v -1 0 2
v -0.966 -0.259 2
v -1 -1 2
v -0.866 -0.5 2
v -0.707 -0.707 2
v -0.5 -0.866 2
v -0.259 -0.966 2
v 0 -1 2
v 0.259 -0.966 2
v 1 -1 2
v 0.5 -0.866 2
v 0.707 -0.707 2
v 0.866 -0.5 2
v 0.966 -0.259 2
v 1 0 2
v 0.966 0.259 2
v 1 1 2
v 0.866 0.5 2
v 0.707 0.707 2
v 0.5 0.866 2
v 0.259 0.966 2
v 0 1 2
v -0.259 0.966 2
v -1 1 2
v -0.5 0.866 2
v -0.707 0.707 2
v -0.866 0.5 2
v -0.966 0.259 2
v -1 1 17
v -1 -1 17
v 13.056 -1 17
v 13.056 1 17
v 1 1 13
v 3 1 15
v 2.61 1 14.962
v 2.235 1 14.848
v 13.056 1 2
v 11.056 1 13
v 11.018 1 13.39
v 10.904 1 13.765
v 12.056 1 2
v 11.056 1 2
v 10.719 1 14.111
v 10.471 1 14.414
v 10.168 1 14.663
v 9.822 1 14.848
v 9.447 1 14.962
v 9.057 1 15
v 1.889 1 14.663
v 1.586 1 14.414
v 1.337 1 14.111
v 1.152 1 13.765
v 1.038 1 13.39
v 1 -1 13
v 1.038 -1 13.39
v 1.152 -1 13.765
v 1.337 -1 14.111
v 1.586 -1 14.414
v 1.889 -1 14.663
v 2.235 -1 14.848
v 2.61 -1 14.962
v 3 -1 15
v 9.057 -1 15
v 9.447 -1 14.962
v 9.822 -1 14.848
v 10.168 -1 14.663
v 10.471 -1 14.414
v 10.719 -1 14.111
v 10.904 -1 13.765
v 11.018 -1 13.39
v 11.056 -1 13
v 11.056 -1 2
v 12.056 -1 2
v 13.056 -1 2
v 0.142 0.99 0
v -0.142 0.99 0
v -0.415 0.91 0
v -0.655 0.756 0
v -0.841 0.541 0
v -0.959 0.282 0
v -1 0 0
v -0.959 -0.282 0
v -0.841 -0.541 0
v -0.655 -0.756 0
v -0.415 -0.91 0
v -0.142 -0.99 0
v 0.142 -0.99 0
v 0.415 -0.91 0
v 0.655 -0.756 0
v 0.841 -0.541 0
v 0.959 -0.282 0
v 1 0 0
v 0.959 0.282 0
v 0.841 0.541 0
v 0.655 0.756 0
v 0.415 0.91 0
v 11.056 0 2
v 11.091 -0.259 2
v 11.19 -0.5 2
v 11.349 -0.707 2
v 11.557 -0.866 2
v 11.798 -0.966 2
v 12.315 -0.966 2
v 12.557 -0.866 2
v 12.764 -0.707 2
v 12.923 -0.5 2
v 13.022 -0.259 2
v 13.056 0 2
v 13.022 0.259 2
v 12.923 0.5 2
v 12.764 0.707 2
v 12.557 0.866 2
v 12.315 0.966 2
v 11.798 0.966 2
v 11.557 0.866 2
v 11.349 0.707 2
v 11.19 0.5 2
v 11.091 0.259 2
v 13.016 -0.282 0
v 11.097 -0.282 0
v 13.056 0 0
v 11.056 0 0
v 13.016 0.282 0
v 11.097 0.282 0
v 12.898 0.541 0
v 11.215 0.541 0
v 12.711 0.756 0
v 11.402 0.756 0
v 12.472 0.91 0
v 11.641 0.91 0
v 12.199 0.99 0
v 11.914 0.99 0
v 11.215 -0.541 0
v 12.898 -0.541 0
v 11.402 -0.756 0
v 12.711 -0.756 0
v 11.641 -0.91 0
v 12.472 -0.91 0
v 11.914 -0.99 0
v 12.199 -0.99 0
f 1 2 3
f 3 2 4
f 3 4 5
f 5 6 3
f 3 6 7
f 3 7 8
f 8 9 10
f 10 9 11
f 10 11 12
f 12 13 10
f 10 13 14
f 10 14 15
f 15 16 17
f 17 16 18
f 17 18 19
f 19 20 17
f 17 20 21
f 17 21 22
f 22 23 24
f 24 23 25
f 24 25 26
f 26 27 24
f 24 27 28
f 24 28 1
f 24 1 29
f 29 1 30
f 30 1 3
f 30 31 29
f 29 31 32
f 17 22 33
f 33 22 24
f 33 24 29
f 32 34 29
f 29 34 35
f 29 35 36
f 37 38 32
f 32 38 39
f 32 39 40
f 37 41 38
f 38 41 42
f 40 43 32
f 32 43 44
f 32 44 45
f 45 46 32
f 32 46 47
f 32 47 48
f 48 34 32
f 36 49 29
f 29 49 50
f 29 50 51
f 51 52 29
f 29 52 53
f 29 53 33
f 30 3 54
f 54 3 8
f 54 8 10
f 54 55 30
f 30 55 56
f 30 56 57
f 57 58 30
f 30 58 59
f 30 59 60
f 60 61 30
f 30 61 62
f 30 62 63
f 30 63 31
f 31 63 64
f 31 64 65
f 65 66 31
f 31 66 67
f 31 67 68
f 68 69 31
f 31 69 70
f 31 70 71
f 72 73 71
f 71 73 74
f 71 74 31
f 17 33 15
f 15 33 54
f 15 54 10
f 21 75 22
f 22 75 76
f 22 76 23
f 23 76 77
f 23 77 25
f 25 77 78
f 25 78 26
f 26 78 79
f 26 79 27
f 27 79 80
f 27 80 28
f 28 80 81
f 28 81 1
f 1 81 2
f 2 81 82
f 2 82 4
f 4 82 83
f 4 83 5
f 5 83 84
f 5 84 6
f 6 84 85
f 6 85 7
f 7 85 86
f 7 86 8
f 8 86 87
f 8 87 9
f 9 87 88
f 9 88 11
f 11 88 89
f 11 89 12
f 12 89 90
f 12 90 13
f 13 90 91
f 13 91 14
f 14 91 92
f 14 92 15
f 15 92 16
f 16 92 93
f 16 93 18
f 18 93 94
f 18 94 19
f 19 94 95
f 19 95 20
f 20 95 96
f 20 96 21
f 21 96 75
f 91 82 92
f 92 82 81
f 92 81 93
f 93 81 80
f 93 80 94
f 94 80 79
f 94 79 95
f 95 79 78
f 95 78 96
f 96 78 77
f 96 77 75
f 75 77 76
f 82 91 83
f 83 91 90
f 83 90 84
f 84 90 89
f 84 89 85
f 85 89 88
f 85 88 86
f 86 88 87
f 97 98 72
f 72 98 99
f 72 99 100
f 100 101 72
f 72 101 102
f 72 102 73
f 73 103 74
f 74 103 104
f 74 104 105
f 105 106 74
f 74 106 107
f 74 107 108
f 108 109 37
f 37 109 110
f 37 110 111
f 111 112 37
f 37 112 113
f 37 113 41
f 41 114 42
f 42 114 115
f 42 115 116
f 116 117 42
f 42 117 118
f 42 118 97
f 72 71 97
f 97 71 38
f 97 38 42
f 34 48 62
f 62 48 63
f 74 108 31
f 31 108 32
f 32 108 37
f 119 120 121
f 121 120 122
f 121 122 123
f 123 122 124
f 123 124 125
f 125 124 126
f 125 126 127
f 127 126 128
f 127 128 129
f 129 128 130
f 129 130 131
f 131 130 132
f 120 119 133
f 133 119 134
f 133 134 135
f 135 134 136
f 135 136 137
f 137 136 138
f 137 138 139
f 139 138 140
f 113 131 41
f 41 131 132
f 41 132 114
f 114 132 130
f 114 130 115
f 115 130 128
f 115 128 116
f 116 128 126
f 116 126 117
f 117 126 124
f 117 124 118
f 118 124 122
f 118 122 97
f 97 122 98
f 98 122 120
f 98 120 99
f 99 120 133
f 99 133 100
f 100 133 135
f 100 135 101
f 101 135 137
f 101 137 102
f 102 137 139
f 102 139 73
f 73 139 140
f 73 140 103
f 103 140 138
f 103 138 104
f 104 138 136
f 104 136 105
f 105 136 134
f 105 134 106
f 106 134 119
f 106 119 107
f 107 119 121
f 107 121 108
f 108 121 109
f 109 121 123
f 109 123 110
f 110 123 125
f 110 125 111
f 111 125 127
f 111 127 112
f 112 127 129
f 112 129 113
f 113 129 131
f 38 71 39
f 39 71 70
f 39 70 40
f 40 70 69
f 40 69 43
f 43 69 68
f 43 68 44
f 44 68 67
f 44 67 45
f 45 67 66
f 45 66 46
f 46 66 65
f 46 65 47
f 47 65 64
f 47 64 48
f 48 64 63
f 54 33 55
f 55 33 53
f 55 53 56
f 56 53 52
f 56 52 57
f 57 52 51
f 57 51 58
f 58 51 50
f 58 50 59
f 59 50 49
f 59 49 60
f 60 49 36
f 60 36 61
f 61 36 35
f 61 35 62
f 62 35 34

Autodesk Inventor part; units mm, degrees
ref_plane "YZ Plane" through (0, 0, 0) normal (1, 0, 0) x (0, 1, 0)
ref_plane "XZ Plane" through (0, 0, 0) normal (0, 1, 0) x (-1, 0, 0)
ref_plane "XY Plane" through (0, 0, 0) normal (0, 0, 1) x (1, 0, 0)
sketch "Esboço1" plane through (0, 0, 0) normal (0, 0, 1) x (1, 0, 0)
  circle A0 centre (0, 0) radius 1
  line L0 (0, 0) -> (12.0565, 0) construction
  circle A1 centre (12.0565, 0) radius 1
  dimension "d0" = 2
  dimension "d1" = 12.0565
  dimension "d2" = 2
extrude "Extrusão1" add sketch "Esboço1" along normal blind 2
sketch "Esboço2" plane through (0, 0, 2) normal (0, 0, 1) x (1, 0, 0)
  line L0 (-1, 1) -> (1, 1)
  line L1 (1, 1) -> (1, -1)
  line L2 (1, -1) -> (-1, -1)
  line L3 (-1, -1) -> (-1, 1)
  circle A0 centre (0, 0) radius 1 projected
  line L4 (-1, 1) -> (1, -1) construction
  line L5 (1, 1) -> (-1, -1) construction
  circle A1 centre (12.0565, 0) radius 1 projected
  line L6 (0, 0) -> (12.0565, 0) construction
  line L7 (11.0565, 1) -> (13.0565, 1)
  line L8 (13.0565, 1) -> (13.0565, -1)
  line L9 (13.0565, -1) -> (11.0565, -1)
  line L10 (11.0565, -1) -> (11.0565, 1)
  line L11 (11.0565, 1) -> (13.0565, -1) construction
  line L12 (13.0565, 1) -> (11.0565, -1) construction
extrude "Extrusão2" add sketch "Esboço2" along normal blind 15
sketch "Esboço3" plane through (0, 0, 17) normal (0, 0, 1) x (1, 0, 0)
  line L0 (1, 0) -> (1, 1) projected
  line L1 (12.0565, 1) -> (11.0565, 1) projected
  line L2 (1, 1) -> (11.0565, 1)
  line L3 (11.0565, 1) -> (11.0565, -1)
  line L4 (11.0565, -1) -> (1, -1)
  line L5 (1, -1) -> (1, 1)
  point P0 (0, 0)
  dimension "d7" = 2
extrude "Extrusão3" add sketch "Esboço3" against normal blind 2
fillet "Arredondamento1" radius 2 2 edges at (11.0565, 0, 15) (1, 0, 15)
properties part number "Trem_Pouso"
